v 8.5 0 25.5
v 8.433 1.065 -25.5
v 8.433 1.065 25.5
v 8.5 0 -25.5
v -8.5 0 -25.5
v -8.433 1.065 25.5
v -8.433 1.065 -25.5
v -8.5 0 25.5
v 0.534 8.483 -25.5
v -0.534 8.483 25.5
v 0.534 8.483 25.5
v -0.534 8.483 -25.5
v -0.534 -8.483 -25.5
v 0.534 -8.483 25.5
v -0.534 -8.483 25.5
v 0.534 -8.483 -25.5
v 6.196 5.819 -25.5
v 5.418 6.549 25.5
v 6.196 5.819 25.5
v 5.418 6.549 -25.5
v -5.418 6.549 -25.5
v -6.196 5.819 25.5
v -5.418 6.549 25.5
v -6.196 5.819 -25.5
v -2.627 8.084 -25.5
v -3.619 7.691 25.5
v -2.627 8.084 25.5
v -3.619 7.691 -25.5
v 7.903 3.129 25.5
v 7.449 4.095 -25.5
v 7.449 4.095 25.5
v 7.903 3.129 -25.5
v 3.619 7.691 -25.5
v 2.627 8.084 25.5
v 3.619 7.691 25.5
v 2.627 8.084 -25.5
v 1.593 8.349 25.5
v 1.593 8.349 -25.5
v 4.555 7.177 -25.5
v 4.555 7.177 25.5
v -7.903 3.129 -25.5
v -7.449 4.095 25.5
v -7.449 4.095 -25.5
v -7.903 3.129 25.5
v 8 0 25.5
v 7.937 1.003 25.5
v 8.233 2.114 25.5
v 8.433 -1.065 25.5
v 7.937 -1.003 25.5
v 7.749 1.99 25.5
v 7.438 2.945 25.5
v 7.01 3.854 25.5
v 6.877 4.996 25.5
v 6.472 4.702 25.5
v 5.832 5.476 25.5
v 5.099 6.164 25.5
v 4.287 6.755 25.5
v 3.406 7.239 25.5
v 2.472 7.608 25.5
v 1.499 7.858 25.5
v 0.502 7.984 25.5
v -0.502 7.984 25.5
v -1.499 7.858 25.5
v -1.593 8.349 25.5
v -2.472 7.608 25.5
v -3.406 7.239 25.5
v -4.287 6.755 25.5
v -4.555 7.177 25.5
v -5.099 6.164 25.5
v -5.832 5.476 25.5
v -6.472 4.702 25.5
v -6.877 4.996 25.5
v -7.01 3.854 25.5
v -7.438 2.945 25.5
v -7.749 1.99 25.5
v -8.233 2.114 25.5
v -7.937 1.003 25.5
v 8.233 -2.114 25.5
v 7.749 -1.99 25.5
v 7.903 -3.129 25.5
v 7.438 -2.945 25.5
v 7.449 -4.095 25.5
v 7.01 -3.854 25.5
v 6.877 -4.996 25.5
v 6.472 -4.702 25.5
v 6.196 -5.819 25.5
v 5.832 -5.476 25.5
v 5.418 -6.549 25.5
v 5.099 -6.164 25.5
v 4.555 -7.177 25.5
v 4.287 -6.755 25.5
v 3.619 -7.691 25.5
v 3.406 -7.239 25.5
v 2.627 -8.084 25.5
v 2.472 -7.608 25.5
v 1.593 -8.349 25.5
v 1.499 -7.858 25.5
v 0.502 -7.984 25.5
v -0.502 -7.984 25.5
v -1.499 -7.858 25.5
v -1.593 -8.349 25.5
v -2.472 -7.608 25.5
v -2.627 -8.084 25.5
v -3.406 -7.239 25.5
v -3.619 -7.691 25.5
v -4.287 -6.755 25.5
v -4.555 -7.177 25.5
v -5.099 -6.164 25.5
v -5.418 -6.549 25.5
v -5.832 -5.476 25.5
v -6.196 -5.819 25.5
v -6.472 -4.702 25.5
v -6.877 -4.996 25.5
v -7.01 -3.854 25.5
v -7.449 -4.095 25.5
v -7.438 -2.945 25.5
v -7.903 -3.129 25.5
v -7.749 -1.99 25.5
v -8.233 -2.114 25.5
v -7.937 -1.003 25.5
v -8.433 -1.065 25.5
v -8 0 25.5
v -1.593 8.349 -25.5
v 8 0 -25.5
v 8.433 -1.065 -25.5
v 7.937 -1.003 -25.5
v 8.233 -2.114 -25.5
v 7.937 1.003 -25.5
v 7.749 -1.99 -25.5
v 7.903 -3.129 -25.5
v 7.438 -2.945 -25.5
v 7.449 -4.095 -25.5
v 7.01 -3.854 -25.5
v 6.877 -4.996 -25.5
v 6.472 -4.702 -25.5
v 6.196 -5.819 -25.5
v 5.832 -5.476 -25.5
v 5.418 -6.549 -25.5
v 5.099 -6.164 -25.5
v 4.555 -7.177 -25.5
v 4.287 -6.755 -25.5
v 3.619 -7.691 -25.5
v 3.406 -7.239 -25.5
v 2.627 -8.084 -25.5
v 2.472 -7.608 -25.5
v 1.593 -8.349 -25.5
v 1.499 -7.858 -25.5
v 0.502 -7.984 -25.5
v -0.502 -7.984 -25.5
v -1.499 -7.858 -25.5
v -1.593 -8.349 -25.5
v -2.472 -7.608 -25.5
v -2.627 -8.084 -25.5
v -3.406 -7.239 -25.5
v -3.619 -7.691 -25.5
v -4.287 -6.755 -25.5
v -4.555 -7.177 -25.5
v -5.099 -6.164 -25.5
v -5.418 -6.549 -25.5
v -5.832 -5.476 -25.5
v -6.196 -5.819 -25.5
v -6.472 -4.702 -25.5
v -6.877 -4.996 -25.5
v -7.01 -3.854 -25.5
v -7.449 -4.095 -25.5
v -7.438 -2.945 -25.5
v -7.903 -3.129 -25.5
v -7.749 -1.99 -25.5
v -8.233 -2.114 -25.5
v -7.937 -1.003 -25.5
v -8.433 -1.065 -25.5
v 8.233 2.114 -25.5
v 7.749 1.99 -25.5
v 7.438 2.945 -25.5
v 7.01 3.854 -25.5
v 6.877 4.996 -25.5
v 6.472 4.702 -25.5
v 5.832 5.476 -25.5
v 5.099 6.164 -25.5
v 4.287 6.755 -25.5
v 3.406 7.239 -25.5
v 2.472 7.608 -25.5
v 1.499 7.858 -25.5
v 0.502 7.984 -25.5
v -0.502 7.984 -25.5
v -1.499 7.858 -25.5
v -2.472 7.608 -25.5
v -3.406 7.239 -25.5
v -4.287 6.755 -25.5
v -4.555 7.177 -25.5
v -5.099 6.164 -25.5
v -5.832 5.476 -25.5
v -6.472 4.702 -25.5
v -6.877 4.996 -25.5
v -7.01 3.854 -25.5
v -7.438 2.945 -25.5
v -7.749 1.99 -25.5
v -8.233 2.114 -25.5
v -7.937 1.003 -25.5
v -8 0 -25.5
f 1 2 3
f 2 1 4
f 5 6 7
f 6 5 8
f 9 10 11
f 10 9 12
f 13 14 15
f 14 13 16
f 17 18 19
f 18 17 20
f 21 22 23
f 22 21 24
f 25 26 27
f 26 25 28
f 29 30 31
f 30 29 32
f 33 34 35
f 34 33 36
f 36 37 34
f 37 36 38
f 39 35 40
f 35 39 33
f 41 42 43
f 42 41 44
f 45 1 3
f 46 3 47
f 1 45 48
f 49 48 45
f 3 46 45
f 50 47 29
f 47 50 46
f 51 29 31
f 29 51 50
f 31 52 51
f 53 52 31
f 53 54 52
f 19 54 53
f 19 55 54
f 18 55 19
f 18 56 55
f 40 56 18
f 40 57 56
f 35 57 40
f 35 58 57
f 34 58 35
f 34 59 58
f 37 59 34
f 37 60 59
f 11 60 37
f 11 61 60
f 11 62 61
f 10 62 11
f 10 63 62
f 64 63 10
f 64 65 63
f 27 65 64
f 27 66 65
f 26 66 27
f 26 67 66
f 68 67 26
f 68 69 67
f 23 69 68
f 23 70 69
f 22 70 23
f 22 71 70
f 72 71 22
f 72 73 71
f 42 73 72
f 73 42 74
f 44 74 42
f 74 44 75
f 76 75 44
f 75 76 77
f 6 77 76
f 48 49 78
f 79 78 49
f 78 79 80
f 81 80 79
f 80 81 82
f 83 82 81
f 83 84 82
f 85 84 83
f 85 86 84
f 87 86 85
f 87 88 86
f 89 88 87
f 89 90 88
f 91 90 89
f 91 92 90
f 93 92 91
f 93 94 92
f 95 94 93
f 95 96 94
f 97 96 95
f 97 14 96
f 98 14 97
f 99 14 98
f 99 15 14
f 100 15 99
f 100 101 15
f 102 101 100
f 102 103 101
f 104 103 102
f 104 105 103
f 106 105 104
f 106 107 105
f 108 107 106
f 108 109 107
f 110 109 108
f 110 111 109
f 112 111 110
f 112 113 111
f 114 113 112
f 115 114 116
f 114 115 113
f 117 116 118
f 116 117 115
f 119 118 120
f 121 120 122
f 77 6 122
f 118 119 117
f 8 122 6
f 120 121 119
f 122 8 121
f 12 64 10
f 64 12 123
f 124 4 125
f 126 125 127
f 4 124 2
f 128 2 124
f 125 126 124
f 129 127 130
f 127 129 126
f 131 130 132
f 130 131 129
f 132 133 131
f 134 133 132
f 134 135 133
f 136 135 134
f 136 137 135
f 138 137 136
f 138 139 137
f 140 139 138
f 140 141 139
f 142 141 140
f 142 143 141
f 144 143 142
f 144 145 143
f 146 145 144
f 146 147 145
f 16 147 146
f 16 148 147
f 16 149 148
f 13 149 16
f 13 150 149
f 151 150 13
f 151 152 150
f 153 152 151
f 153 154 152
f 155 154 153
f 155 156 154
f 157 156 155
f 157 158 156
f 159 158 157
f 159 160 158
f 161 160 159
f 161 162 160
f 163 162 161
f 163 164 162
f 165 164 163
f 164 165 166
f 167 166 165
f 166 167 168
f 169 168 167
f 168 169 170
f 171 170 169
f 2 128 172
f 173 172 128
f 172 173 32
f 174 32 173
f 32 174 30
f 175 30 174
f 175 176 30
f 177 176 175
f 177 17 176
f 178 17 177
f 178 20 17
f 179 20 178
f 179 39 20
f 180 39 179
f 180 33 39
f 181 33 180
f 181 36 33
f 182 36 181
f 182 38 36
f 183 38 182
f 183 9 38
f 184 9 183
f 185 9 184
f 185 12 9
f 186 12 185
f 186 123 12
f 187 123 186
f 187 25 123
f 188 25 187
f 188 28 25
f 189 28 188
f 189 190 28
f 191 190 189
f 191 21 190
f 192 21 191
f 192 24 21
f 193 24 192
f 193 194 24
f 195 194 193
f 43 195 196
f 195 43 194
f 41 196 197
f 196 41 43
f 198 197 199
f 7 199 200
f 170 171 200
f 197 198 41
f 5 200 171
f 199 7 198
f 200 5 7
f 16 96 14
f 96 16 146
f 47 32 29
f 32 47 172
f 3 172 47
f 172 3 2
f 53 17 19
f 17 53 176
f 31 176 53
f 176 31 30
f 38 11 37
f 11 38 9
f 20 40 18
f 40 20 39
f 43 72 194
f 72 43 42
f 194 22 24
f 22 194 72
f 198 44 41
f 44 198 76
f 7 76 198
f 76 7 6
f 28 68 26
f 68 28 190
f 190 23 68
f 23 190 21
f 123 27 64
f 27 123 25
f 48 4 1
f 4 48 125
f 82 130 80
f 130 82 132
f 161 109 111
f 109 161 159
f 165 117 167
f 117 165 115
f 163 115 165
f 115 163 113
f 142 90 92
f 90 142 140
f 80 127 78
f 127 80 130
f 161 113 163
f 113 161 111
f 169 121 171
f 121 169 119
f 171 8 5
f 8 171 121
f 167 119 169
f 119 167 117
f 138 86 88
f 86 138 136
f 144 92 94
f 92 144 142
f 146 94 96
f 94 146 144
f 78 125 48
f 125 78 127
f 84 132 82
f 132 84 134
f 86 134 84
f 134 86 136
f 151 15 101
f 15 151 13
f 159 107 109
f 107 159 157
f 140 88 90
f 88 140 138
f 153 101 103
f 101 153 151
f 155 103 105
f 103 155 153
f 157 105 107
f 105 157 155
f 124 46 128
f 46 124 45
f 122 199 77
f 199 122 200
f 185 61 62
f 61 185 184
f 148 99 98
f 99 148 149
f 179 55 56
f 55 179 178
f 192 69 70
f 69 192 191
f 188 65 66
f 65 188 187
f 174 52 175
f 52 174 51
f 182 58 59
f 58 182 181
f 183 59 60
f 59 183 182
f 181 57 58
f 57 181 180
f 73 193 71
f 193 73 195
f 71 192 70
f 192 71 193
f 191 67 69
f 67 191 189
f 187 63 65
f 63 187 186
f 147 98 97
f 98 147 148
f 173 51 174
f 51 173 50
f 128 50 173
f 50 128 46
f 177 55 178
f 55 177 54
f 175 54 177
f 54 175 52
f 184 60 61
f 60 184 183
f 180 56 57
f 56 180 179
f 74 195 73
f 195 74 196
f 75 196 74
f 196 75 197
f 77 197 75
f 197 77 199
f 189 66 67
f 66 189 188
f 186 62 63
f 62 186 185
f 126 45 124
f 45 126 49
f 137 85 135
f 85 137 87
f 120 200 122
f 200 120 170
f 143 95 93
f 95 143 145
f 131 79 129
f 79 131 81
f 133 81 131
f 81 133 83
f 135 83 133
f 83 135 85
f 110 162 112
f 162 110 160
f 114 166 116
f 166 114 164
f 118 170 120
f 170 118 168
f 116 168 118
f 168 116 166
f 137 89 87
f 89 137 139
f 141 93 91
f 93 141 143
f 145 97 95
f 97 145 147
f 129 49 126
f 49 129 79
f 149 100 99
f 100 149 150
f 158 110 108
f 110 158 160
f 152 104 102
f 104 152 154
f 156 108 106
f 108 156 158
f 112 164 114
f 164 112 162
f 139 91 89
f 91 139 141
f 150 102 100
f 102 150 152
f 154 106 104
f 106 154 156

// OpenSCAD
$fn = 50;


difference() {
	union() {
		translate(v = [0, 0, -25.5000000000]) {
			cylinder(h = 51, r = 8.5000000000);
		}
	}
	union() {
		translate(v = [0, 0, -100.0000000000]) {
			cylinder(h = 200, r = 8);
		}
	}
}
